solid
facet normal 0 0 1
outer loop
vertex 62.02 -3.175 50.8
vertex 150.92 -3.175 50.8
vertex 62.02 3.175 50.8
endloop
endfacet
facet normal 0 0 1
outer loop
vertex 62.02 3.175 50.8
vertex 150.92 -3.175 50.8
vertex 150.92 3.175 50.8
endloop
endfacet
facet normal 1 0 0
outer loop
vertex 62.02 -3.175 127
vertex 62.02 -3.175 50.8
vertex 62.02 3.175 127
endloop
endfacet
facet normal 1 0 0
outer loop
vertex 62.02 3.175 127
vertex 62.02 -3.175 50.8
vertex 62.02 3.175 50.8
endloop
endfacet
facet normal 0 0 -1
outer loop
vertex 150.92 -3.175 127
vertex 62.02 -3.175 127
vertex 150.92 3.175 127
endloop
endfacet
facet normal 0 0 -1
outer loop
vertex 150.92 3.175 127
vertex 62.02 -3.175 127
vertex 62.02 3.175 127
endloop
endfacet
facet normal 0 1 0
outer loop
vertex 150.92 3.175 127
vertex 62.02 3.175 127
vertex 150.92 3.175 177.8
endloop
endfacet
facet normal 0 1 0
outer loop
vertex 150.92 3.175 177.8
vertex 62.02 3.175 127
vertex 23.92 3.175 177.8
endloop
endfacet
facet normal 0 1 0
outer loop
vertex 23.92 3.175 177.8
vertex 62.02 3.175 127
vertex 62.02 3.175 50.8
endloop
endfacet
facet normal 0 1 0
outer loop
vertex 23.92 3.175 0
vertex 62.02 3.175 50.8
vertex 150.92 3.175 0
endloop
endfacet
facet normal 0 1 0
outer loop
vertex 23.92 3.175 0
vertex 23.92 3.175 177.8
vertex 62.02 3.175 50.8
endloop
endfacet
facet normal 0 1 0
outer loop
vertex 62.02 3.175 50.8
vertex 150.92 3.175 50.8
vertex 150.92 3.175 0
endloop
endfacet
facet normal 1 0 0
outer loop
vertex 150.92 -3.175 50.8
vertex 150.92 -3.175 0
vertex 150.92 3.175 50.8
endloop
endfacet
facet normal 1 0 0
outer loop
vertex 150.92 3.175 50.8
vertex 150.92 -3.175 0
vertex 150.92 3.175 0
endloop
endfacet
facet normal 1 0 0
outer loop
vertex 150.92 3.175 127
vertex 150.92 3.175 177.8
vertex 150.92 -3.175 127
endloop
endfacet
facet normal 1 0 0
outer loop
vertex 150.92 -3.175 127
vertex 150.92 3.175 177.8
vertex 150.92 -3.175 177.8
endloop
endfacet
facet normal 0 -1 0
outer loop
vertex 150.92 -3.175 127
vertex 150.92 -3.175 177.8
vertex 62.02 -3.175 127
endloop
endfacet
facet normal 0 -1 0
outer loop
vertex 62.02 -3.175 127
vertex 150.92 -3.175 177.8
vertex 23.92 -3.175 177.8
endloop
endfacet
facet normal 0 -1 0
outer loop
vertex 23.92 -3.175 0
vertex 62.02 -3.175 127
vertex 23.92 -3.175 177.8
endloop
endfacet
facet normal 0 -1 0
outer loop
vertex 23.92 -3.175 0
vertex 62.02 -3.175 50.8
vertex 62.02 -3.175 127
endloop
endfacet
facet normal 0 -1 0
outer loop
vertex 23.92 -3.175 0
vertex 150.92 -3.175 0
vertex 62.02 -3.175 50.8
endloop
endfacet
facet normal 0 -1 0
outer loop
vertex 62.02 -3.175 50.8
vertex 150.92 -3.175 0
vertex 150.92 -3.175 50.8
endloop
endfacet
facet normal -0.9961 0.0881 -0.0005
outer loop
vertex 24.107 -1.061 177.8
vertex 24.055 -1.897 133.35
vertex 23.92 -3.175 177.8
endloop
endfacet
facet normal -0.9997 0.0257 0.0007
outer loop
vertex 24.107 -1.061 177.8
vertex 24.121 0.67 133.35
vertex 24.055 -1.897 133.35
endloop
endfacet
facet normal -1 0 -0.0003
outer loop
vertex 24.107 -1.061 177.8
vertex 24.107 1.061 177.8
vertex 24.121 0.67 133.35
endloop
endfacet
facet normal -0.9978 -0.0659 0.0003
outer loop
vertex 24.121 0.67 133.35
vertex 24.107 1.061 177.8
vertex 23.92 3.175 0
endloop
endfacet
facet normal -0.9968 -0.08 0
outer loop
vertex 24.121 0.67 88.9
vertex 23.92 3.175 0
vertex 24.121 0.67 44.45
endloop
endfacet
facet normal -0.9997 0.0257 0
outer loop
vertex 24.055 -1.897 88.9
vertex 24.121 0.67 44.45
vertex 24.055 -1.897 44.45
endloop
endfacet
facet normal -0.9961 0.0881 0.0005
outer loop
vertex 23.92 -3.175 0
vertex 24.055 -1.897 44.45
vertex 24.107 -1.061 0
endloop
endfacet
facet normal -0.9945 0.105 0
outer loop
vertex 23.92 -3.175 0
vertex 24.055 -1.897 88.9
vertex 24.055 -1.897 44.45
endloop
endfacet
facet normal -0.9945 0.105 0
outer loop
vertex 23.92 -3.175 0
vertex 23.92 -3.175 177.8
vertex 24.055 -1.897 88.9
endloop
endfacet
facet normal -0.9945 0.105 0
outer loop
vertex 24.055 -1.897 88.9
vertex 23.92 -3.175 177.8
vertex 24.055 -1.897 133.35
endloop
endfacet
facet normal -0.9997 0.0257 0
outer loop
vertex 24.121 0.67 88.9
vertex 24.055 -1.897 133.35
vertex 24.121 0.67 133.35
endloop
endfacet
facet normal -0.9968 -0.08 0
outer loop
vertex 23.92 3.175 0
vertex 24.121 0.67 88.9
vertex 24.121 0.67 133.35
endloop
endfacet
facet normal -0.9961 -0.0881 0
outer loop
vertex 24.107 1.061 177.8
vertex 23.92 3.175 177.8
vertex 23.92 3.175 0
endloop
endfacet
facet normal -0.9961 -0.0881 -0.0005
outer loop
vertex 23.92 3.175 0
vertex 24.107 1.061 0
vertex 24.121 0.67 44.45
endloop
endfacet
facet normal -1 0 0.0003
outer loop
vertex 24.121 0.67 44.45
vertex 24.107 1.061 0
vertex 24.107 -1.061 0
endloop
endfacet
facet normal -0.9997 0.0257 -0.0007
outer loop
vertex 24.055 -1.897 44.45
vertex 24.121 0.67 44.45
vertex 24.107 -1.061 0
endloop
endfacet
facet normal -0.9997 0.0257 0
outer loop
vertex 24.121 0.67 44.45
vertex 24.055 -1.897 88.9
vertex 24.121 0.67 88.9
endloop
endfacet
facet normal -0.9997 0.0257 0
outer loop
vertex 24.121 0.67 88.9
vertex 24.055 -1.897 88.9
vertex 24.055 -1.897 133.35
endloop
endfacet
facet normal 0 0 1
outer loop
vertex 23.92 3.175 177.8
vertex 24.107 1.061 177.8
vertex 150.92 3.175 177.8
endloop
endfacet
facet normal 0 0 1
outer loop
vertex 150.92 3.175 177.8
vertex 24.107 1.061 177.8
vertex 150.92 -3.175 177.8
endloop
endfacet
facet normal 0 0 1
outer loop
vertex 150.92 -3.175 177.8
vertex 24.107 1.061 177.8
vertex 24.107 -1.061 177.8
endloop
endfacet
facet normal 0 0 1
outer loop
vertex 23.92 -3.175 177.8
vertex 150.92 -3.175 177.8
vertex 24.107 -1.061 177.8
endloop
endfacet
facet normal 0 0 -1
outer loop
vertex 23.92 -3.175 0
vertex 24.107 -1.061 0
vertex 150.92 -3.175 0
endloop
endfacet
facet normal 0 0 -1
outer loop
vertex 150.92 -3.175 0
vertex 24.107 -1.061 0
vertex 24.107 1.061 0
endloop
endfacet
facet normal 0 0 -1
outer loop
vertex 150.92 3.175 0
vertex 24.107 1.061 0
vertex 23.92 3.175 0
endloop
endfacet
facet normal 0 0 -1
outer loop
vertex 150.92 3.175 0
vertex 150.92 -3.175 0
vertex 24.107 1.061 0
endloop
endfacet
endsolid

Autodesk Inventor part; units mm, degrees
ref_plane "YZ Plane" through (0, 0, 0) normal (1, 0, 0) x (0, 1, 0)
ref_plane "XZ Plane" through (0, 0, 0) normal (0, 1, 0) x (-1, 0, 0)
ref_plane "XY Plane" through (0, 0, 0) normal (0, 0, 1) x (1, 0, 0)
sketch "Sketch1" plane through (0, 0, 0) normal (0, 0, 1) x (1, 0, 0)
  arc A0 (23.9202, -3.175) -> (23.9202, 3.175) centre (0, 0) ccw
  line L0 (23.9202, 3.175) -> (150.9202, 3.175)
  line L1 (150.9202, 3.175) -> (150.9202, -3.175)
  line L2 (150.9202, -3.175) -> (23.9202, -3.175)
  line L3 (23.9202, 3.175) -> (0, 3.175) construction
  line L4 (0, 0) -> (0, 3.175) construction
  line L5 (0, 0) -> (0, -3.175) construction
  line L6 (0, -3.175) -> (23.9202, -3.175) construction
  dimension "d0" = 24.13
  dimension "d1" = 6.35
  dimension "d9" = 127
extrude "Extrusion1" add sketch "Sketch1" along normal blind 177.8
sketch "Sketch2" plane through (23.9202, 3.175, 0) normal (0, 1, 0) x (1, 0, 0)
  line L0 (0, -177.8) -> (127, -177.8) projected
  line L1 (127, 0) -> (127, -177.8) projected
  line L2 (0, 0) -> (127, 0) projected
  line L3 (127, -50.8) -> (38.1, -50.8)
  line L4 (38.1, -50.8) -> (38.1, -127)
  line L5 (38.1, -127) -> (127, -127)
  line L6 (127, -127) -> (127, -50.8)
  line L7 (38.1, -50.8) -> (38.1, 0) construction
  line L8 (38.1, -127) -> (38.1, -177.8) construction
  line L9 (0, 0) -> (0, -177.8) projected
  point P0 (-23.9202, 0)
  dimension "d4" = 76.2
  dimension "d8" = 38.1
extrude "Extrusion2" cut sketch "Sketch2" against normal up to next contours L5 L4 L3 L1
properties part number "PitchingArmConcept"
